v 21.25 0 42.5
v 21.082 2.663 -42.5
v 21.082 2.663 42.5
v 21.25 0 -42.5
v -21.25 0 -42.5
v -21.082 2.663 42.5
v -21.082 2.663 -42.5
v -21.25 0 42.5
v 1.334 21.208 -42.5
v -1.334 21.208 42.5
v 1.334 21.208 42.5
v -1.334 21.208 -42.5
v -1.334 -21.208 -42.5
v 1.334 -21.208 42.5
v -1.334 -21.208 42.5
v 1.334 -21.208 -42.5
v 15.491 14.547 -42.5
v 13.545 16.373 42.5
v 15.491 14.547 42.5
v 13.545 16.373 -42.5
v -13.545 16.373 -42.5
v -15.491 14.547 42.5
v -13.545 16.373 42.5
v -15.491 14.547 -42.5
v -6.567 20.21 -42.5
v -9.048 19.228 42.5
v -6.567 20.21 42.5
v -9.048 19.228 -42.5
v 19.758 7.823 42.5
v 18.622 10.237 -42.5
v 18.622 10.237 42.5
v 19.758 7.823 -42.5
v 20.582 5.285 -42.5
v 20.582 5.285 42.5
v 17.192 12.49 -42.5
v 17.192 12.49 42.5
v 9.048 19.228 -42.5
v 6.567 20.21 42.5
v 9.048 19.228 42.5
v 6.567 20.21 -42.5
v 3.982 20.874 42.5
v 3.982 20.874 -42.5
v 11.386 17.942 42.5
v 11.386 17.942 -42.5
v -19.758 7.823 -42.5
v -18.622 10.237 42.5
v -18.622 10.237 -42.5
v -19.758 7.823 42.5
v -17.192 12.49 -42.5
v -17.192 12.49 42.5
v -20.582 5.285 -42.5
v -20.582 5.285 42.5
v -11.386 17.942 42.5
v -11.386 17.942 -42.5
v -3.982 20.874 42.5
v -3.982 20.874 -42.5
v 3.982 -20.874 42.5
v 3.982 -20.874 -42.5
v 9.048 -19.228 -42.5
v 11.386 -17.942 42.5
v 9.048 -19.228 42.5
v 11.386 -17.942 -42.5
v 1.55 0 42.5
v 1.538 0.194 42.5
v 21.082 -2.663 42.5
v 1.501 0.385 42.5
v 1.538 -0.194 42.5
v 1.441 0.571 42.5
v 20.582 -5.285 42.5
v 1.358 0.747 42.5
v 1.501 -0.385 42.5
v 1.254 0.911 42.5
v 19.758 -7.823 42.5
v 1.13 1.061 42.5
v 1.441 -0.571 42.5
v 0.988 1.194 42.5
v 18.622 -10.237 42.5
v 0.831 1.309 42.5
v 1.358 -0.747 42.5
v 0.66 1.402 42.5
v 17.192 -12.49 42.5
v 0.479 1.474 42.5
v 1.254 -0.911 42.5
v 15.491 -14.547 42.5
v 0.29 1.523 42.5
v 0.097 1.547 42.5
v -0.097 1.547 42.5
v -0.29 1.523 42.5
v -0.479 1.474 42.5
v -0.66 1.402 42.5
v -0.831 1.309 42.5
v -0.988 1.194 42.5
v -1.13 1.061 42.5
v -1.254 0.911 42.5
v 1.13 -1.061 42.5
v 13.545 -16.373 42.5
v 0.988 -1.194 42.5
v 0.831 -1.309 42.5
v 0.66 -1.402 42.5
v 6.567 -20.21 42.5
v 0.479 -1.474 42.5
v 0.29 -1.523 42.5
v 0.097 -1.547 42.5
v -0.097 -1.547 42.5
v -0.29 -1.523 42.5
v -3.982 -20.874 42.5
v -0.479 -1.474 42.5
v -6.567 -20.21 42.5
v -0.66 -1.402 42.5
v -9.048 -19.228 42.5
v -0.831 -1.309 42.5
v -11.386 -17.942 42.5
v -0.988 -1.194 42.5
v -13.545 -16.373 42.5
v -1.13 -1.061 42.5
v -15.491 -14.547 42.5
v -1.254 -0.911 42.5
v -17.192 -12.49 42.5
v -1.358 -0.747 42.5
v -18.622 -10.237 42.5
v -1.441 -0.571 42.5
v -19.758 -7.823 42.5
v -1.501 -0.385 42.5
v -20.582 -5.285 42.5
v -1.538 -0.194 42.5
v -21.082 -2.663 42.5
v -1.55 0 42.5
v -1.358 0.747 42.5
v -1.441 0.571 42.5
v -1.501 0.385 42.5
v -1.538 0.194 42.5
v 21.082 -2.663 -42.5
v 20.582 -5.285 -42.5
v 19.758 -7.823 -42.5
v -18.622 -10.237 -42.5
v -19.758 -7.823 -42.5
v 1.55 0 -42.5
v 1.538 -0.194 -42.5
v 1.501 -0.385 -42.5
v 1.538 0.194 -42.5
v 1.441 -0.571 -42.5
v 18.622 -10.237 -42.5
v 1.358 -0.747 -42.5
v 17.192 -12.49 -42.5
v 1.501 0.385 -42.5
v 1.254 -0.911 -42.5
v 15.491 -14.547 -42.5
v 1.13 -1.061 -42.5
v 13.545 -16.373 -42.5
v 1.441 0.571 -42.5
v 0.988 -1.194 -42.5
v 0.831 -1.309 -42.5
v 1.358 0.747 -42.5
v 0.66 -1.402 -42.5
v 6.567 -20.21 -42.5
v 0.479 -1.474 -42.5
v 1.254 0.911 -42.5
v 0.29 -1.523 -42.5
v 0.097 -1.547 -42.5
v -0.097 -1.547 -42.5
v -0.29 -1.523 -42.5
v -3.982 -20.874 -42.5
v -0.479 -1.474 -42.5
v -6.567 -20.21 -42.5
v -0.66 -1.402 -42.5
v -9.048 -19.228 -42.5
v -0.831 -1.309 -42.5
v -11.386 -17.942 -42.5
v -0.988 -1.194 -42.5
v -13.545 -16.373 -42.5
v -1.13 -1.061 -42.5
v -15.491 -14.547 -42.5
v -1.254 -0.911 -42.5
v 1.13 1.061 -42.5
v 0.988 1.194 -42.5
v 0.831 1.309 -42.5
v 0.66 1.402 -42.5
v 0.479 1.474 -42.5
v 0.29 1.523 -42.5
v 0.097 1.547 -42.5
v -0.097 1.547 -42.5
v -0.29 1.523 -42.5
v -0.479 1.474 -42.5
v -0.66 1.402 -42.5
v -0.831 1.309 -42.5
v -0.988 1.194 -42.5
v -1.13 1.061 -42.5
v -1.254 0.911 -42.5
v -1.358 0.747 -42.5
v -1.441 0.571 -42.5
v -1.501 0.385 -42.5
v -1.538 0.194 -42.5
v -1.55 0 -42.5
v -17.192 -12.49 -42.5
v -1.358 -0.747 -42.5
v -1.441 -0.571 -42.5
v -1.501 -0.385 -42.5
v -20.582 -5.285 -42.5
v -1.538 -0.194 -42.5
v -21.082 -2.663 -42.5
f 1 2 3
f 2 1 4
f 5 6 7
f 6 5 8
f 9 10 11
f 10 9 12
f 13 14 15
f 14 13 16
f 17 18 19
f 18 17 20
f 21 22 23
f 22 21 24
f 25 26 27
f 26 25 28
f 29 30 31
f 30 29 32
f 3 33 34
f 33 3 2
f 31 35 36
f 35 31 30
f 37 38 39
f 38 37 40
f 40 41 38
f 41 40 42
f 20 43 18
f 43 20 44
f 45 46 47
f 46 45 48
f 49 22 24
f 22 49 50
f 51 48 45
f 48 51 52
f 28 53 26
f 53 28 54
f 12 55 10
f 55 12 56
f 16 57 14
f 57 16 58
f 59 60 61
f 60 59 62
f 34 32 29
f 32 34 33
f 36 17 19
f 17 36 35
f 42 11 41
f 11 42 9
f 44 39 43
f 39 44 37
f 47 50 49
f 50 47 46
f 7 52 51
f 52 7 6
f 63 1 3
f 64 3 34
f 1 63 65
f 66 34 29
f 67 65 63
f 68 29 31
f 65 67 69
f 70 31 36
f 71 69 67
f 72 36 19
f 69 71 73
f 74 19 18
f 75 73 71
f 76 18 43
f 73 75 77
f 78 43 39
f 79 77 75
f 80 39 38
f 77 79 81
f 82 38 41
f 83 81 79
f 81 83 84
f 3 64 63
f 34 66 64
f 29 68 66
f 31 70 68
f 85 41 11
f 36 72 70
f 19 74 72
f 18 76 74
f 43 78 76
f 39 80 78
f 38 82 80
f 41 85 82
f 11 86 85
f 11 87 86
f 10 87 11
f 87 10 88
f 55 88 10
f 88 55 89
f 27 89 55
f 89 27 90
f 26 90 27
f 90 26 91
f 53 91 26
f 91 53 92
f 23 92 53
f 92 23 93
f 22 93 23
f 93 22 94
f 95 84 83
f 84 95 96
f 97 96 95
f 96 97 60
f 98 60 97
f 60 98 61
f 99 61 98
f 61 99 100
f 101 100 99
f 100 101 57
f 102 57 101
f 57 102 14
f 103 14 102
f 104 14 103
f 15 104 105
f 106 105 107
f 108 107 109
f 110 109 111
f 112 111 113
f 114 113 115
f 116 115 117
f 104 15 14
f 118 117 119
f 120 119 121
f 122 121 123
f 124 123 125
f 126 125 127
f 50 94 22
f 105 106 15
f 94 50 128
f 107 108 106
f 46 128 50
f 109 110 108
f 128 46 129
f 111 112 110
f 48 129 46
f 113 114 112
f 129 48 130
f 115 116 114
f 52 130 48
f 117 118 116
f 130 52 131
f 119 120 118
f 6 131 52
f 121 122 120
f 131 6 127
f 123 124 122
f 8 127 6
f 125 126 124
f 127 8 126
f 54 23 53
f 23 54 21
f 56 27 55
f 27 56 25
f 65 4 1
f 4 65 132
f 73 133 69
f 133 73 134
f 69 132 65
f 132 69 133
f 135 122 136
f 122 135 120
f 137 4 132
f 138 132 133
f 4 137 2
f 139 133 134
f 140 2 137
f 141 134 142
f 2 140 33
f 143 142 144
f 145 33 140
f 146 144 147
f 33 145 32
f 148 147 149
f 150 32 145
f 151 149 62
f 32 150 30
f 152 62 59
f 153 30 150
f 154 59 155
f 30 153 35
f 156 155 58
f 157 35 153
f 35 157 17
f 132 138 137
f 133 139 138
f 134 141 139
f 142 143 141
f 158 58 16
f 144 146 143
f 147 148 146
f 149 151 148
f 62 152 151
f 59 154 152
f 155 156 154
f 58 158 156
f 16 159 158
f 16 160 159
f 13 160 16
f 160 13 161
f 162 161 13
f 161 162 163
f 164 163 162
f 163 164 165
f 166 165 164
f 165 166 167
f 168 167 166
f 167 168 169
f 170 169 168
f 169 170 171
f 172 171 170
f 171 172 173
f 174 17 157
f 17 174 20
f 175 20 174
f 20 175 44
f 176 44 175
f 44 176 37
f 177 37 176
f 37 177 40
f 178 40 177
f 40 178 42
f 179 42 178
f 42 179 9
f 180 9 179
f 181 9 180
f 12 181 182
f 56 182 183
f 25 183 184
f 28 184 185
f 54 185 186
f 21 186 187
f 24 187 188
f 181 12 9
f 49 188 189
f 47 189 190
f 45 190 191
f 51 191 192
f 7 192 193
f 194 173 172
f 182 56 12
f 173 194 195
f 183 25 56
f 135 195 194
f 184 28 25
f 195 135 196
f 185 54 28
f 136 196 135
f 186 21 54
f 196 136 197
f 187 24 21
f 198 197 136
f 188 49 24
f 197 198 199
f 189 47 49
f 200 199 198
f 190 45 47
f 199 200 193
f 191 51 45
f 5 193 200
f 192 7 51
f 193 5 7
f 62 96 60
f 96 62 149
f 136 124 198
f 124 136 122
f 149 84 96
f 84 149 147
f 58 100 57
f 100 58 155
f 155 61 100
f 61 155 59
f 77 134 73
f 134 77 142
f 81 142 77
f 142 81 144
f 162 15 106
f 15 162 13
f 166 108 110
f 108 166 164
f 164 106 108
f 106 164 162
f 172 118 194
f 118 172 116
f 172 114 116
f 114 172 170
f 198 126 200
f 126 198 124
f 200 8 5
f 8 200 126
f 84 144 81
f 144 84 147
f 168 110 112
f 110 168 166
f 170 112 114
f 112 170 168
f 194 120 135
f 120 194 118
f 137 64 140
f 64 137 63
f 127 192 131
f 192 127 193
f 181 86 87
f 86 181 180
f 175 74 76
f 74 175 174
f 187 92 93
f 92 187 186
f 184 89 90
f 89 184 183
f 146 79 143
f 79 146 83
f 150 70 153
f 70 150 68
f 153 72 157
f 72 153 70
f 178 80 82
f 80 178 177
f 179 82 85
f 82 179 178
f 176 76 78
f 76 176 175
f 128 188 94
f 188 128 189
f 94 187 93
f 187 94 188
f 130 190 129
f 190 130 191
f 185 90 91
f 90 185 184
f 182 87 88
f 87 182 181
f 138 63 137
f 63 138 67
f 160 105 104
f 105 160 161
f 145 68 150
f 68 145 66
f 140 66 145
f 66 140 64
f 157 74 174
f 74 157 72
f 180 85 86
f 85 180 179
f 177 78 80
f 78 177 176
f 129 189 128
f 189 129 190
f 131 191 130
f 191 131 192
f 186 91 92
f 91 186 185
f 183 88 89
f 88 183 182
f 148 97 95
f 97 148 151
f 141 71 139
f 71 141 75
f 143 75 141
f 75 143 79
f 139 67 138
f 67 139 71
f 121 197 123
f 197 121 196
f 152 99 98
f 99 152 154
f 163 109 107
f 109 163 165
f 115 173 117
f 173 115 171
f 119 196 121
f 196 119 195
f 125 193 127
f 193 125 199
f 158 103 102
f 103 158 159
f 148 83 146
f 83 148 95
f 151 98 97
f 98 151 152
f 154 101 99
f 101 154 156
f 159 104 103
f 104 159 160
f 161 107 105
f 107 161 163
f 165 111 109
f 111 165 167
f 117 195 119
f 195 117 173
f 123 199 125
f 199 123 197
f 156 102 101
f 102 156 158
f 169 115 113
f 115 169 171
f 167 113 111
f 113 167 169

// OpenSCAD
$fn = 50;


difference() {
	union() {
		translate(v = [0, 0, -42.5000000000]) {
			cylinder(h = 85, r = 21.2500000000);
		}
	}
	union() {
		translate(v = [0, 0, -100.0000000000]) {
			cylinder(h = 200, r = 1.5500000000);
		}
	}
}
